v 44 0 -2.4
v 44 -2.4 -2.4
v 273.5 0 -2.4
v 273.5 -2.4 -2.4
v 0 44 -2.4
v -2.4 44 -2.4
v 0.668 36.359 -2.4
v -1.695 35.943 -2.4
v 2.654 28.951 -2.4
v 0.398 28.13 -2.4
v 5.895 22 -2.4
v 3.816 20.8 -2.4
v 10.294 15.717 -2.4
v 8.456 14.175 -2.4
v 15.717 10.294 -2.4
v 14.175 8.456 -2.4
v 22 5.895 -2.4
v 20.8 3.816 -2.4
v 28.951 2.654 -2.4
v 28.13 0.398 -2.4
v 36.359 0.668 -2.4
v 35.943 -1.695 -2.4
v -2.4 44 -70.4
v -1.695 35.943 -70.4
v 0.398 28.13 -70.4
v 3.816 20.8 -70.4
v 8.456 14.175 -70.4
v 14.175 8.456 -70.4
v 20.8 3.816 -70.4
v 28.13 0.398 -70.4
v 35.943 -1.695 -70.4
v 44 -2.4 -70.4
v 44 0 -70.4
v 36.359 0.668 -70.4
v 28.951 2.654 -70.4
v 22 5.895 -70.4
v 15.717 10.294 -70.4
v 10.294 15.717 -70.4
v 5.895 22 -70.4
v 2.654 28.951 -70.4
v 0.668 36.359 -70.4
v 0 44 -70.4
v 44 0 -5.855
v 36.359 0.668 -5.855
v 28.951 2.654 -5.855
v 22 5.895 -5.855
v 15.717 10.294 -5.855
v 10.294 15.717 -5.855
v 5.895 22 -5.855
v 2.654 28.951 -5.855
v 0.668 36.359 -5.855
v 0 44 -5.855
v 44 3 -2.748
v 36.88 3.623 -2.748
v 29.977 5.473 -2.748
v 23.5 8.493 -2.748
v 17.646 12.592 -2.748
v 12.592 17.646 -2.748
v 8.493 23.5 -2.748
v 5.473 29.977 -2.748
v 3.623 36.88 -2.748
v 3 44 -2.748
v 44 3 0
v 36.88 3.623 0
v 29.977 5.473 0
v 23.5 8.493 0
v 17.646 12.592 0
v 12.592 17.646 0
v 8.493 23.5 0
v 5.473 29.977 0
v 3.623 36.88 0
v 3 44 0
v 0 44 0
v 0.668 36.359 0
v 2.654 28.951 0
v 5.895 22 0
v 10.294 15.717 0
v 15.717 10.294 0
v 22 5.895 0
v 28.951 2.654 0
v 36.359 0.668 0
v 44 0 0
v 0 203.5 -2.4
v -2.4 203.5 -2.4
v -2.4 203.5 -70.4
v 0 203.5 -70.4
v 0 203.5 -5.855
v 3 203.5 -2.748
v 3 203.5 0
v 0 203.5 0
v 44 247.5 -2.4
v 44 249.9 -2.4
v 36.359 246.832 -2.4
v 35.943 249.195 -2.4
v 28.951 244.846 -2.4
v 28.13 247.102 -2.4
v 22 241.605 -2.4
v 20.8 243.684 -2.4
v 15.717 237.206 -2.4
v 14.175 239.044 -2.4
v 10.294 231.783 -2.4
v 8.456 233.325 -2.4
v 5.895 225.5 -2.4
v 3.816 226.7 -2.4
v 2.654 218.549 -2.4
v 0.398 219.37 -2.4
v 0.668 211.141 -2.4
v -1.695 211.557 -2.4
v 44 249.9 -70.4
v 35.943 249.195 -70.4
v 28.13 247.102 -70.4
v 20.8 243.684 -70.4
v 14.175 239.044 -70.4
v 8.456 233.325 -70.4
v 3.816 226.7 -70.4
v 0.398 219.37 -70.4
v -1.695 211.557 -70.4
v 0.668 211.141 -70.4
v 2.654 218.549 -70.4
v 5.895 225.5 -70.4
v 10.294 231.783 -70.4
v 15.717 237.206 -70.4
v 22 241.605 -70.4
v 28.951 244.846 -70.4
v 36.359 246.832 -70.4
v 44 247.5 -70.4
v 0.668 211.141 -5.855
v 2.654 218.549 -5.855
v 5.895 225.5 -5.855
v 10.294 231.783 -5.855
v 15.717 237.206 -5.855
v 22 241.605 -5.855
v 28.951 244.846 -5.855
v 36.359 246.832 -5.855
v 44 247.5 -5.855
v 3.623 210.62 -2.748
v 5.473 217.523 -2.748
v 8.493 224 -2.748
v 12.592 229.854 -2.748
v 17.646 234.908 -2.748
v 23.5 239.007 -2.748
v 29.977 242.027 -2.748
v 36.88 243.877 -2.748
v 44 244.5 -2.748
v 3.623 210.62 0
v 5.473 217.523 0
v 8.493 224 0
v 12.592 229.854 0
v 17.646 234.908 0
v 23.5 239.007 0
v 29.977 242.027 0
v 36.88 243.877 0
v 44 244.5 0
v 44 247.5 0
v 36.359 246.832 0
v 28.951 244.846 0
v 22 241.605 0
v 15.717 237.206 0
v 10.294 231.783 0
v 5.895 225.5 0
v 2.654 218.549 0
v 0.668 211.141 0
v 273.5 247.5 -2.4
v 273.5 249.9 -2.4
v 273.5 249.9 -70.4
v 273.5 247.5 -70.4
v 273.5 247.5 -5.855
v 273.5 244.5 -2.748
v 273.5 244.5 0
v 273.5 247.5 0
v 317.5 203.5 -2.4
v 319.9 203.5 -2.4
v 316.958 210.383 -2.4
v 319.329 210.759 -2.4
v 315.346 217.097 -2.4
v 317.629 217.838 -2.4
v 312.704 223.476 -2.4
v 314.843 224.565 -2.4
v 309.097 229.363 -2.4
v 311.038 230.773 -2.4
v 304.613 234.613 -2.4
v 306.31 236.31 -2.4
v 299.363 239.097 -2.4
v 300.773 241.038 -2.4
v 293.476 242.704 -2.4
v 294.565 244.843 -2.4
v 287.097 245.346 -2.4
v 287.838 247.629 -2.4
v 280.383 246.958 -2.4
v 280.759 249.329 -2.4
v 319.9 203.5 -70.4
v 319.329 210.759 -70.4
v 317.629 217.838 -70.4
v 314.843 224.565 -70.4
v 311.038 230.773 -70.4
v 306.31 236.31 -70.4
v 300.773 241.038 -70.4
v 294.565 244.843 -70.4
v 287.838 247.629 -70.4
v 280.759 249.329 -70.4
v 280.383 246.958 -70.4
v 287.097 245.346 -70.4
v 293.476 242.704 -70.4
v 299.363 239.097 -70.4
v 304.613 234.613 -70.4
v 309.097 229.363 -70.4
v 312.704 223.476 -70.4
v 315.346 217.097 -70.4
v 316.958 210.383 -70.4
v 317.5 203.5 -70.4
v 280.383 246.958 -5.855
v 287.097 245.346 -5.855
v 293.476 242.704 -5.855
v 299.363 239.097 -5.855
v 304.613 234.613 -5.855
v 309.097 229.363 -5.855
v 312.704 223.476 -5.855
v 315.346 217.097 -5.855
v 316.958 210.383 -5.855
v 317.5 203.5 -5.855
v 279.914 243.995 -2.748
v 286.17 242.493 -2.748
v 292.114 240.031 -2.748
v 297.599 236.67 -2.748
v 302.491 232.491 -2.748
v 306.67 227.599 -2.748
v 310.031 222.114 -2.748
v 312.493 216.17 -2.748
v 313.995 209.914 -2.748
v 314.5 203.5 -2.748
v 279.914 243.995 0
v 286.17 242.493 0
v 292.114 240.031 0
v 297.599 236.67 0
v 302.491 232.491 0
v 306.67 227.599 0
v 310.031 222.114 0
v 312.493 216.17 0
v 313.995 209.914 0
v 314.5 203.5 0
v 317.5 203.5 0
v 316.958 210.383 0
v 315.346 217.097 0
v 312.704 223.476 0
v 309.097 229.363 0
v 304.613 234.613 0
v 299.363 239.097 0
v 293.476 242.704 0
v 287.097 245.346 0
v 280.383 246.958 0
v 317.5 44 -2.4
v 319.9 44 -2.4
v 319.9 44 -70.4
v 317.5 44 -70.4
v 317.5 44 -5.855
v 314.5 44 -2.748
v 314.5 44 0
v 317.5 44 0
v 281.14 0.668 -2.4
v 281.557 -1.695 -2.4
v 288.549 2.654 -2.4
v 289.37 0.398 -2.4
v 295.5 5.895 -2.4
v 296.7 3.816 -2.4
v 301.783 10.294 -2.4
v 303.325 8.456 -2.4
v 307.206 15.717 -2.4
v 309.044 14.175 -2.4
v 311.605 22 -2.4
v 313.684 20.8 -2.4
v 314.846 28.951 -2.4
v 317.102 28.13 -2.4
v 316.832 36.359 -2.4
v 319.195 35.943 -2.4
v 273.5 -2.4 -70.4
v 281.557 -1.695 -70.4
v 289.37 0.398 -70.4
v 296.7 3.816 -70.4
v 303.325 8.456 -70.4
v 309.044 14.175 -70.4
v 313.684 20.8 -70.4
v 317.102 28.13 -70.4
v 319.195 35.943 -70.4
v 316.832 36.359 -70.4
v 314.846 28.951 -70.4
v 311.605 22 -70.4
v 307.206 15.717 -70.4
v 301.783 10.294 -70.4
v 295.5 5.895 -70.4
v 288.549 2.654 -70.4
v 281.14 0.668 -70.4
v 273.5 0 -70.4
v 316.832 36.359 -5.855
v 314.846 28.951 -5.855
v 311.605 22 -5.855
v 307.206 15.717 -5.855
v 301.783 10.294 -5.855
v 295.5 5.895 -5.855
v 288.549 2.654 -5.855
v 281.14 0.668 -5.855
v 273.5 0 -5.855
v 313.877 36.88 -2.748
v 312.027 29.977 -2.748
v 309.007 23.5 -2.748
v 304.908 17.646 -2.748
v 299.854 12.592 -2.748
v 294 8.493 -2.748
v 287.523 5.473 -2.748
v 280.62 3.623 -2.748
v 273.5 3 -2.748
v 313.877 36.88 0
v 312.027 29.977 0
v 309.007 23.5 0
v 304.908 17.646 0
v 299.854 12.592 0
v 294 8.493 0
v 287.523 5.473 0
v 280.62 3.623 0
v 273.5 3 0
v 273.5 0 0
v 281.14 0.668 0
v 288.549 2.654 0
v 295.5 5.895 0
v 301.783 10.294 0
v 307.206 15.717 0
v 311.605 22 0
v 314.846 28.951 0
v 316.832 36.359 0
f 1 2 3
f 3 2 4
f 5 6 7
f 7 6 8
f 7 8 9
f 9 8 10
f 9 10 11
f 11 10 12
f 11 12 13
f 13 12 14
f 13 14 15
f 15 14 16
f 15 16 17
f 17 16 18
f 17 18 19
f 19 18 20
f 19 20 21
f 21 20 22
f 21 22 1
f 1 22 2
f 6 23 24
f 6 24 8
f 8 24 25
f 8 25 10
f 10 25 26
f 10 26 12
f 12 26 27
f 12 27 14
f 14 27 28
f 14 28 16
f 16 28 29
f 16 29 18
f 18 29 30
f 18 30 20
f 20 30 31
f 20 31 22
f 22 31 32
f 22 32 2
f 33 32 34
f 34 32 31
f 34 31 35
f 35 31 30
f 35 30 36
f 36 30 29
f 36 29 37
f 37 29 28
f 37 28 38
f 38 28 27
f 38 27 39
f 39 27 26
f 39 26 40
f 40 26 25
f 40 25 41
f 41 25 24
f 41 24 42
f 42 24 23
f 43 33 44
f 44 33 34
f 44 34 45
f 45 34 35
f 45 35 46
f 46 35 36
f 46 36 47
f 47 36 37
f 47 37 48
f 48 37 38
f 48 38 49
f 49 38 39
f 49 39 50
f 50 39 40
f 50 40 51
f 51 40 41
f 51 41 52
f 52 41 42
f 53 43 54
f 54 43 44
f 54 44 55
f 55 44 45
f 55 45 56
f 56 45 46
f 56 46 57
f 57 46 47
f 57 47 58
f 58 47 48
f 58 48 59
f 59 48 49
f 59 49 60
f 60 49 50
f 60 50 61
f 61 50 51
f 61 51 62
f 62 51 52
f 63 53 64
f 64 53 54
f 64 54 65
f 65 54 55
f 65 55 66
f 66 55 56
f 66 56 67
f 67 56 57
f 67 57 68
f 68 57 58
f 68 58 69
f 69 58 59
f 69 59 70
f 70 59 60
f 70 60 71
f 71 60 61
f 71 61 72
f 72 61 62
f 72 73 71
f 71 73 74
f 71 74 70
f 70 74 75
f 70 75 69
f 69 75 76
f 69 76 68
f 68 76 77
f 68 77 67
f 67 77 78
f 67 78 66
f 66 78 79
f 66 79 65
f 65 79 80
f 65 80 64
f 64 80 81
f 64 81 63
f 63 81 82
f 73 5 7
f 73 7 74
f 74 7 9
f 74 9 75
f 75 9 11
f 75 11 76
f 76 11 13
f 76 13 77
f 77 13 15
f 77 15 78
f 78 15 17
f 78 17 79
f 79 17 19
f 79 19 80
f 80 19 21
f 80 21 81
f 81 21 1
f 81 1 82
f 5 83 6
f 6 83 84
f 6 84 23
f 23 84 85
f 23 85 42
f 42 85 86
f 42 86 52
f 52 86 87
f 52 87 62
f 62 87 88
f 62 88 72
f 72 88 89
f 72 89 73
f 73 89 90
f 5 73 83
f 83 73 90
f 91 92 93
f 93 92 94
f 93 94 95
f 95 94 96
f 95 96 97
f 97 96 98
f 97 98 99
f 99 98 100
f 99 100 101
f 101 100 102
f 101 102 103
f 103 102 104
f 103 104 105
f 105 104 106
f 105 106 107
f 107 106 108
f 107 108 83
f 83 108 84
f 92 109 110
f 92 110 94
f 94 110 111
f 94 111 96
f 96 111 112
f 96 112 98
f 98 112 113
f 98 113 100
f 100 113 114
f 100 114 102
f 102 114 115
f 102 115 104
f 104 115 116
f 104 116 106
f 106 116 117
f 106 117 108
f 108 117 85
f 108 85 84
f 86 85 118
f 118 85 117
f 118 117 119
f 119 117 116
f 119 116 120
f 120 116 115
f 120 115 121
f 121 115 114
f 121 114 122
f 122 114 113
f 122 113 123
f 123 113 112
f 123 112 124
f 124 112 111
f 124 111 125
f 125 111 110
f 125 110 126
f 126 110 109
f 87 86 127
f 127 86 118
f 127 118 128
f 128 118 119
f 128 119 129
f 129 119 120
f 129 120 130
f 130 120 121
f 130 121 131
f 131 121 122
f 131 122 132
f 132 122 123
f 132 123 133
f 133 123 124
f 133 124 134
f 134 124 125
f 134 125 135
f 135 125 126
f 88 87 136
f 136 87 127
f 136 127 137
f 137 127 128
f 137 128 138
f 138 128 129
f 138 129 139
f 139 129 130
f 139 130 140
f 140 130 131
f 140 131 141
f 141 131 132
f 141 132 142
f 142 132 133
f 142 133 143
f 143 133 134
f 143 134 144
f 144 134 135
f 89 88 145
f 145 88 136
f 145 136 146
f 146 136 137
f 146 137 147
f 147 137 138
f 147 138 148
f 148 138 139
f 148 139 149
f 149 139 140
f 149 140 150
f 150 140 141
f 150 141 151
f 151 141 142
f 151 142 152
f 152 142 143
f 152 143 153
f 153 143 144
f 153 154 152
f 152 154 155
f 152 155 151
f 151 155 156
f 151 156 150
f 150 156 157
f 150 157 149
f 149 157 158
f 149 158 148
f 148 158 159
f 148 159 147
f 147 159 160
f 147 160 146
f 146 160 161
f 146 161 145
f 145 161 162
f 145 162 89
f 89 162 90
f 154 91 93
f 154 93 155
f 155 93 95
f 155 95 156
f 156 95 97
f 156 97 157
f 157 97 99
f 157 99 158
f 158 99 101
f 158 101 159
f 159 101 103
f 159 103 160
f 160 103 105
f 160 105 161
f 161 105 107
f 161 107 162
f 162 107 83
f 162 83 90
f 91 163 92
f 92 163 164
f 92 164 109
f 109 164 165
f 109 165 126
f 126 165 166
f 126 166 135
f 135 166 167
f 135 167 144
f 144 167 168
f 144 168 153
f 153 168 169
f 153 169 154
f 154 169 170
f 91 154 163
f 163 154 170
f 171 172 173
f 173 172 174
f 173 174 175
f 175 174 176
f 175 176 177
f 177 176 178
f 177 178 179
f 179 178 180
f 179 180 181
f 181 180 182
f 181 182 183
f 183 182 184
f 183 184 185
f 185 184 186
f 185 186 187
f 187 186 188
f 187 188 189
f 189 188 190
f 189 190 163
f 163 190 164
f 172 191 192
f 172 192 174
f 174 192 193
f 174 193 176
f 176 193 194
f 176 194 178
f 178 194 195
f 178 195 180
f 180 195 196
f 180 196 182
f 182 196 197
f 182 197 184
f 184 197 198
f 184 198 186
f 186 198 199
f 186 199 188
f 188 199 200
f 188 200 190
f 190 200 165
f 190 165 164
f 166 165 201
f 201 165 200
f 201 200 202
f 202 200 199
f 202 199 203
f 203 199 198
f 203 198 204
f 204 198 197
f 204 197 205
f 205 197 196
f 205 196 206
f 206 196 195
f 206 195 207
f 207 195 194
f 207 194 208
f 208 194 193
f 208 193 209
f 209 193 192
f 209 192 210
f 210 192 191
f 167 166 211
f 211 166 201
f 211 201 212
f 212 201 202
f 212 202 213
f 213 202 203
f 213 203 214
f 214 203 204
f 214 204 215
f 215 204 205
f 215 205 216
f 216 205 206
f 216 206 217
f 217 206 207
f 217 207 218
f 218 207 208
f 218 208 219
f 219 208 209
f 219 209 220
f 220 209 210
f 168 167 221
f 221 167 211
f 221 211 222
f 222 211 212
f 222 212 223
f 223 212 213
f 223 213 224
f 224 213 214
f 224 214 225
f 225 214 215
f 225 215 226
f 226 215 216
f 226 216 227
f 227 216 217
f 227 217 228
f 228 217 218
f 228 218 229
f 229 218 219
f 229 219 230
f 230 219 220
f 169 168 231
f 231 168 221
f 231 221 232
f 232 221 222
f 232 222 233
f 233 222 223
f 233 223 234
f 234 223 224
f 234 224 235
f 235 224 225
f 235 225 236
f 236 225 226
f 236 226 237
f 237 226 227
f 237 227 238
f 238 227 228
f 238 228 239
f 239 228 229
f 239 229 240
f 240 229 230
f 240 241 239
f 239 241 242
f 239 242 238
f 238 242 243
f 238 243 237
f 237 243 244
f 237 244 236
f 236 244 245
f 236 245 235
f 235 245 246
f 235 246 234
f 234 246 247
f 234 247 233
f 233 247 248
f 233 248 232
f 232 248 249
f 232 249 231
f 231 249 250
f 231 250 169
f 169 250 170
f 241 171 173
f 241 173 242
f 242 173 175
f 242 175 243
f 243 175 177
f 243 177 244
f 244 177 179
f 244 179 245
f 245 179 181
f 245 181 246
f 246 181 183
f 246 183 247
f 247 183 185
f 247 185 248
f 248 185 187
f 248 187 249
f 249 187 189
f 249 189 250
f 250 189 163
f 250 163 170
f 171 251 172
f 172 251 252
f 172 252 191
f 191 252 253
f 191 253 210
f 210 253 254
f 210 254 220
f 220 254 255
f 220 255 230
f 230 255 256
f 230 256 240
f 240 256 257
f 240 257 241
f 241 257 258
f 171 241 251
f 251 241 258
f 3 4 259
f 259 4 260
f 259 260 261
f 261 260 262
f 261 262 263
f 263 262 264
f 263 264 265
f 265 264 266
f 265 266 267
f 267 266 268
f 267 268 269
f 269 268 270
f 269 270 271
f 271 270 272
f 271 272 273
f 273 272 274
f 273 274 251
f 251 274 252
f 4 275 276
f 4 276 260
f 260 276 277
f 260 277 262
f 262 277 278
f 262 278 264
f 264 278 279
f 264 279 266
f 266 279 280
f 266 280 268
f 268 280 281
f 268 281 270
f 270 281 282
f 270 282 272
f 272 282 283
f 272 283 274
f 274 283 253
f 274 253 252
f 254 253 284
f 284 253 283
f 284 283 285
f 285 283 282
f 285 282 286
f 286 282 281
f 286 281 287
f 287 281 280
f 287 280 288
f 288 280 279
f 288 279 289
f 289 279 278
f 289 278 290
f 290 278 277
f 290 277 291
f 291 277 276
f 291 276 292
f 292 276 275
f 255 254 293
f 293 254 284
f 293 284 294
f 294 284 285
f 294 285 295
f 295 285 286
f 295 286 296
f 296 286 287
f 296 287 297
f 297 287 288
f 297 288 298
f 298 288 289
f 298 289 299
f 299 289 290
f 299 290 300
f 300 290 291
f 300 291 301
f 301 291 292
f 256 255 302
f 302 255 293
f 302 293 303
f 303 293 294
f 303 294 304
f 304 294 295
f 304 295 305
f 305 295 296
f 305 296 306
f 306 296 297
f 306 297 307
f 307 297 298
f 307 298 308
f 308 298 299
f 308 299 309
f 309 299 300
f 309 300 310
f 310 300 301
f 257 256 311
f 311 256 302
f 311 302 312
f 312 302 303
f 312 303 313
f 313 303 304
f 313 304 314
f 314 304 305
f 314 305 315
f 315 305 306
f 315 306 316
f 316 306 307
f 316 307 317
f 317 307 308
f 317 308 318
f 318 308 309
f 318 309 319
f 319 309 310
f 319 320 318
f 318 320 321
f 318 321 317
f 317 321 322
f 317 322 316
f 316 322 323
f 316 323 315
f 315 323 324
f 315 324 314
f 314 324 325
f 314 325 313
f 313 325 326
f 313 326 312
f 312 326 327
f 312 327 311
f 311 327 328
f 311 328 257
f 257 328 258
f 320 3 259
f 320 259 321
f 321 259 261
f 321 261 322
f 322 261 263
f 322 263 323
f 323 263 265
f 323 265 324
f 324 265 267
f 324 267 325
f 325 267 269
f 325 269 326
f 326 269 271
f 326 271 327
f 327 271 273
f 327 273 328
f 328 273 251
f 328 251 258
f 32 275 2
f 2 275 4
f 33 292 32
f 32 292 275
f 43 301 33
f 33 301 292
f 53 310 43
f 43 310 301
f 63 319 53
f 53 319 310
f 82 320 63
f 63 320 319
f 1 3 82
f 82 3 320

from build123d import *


with BuildPart() as part:
    # Sweep2: sweep along a path in BasketRing
    with BuildLine(Plane.XY) as sweep2_path:
        Line((44, 0), (273.5, 0))
        ThreePointArc((273.5, 0), (304.612698372, 12.887301628), (317.5, 44))
        Line((317.5, 44), (317.5, 203.5))
        ThreePointArc((317.5, 203.5), (304.612698372, 234.612698372), (273.5, 247.5))
        Line((273.5, 247.5), (44, 247.5))
        ThreePointArc((44, 247.5), (12.887301628, 234.612698372), (0, 203.5))
        Line((0, 203.5), (0, 44))
        ThreePointArc((0, 44), (12.887301628, 12.887301628), (44, 0))
    # ShapeOf Edge → Sweep2 (sweep)
    with BuildSketch(Plane(origin=(44, 0, 0), x_dir=(0, 0, -1), z_dir=(1, 0, 0))):
        Polygon((0, 0), (2.4, 0), (2.4, -2.4), (70.4, -2.4), (70.4, 0), (5.854935695, 0), (2.748344754, 3), (0, 3), align=None)
    sweep(path=sweep2_path.line)


solid = part.part
